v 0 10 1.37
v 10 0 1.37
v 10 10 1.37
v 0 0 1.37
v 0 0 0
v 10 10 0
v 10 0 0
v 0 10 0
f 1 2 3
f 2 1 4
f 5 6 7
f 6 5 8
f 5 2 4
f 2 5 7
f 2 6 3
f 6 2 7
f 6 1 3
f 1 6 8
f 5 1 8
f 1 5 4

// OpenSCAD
/* Warning, this is a very basic generator with a lot of approximation 
input data : [LFBGA, A7B, 10x10x1.37mm, 247, , A, C04-21115A]
generated by com.zoubworld.electronics.cad.model3d.Basic
Date : Sun Feb 15 10:50:49 CET 2026
*/

//body
color("black")
translate([0,0,0])
cube([10.0,10.0,1.37], center=false);
